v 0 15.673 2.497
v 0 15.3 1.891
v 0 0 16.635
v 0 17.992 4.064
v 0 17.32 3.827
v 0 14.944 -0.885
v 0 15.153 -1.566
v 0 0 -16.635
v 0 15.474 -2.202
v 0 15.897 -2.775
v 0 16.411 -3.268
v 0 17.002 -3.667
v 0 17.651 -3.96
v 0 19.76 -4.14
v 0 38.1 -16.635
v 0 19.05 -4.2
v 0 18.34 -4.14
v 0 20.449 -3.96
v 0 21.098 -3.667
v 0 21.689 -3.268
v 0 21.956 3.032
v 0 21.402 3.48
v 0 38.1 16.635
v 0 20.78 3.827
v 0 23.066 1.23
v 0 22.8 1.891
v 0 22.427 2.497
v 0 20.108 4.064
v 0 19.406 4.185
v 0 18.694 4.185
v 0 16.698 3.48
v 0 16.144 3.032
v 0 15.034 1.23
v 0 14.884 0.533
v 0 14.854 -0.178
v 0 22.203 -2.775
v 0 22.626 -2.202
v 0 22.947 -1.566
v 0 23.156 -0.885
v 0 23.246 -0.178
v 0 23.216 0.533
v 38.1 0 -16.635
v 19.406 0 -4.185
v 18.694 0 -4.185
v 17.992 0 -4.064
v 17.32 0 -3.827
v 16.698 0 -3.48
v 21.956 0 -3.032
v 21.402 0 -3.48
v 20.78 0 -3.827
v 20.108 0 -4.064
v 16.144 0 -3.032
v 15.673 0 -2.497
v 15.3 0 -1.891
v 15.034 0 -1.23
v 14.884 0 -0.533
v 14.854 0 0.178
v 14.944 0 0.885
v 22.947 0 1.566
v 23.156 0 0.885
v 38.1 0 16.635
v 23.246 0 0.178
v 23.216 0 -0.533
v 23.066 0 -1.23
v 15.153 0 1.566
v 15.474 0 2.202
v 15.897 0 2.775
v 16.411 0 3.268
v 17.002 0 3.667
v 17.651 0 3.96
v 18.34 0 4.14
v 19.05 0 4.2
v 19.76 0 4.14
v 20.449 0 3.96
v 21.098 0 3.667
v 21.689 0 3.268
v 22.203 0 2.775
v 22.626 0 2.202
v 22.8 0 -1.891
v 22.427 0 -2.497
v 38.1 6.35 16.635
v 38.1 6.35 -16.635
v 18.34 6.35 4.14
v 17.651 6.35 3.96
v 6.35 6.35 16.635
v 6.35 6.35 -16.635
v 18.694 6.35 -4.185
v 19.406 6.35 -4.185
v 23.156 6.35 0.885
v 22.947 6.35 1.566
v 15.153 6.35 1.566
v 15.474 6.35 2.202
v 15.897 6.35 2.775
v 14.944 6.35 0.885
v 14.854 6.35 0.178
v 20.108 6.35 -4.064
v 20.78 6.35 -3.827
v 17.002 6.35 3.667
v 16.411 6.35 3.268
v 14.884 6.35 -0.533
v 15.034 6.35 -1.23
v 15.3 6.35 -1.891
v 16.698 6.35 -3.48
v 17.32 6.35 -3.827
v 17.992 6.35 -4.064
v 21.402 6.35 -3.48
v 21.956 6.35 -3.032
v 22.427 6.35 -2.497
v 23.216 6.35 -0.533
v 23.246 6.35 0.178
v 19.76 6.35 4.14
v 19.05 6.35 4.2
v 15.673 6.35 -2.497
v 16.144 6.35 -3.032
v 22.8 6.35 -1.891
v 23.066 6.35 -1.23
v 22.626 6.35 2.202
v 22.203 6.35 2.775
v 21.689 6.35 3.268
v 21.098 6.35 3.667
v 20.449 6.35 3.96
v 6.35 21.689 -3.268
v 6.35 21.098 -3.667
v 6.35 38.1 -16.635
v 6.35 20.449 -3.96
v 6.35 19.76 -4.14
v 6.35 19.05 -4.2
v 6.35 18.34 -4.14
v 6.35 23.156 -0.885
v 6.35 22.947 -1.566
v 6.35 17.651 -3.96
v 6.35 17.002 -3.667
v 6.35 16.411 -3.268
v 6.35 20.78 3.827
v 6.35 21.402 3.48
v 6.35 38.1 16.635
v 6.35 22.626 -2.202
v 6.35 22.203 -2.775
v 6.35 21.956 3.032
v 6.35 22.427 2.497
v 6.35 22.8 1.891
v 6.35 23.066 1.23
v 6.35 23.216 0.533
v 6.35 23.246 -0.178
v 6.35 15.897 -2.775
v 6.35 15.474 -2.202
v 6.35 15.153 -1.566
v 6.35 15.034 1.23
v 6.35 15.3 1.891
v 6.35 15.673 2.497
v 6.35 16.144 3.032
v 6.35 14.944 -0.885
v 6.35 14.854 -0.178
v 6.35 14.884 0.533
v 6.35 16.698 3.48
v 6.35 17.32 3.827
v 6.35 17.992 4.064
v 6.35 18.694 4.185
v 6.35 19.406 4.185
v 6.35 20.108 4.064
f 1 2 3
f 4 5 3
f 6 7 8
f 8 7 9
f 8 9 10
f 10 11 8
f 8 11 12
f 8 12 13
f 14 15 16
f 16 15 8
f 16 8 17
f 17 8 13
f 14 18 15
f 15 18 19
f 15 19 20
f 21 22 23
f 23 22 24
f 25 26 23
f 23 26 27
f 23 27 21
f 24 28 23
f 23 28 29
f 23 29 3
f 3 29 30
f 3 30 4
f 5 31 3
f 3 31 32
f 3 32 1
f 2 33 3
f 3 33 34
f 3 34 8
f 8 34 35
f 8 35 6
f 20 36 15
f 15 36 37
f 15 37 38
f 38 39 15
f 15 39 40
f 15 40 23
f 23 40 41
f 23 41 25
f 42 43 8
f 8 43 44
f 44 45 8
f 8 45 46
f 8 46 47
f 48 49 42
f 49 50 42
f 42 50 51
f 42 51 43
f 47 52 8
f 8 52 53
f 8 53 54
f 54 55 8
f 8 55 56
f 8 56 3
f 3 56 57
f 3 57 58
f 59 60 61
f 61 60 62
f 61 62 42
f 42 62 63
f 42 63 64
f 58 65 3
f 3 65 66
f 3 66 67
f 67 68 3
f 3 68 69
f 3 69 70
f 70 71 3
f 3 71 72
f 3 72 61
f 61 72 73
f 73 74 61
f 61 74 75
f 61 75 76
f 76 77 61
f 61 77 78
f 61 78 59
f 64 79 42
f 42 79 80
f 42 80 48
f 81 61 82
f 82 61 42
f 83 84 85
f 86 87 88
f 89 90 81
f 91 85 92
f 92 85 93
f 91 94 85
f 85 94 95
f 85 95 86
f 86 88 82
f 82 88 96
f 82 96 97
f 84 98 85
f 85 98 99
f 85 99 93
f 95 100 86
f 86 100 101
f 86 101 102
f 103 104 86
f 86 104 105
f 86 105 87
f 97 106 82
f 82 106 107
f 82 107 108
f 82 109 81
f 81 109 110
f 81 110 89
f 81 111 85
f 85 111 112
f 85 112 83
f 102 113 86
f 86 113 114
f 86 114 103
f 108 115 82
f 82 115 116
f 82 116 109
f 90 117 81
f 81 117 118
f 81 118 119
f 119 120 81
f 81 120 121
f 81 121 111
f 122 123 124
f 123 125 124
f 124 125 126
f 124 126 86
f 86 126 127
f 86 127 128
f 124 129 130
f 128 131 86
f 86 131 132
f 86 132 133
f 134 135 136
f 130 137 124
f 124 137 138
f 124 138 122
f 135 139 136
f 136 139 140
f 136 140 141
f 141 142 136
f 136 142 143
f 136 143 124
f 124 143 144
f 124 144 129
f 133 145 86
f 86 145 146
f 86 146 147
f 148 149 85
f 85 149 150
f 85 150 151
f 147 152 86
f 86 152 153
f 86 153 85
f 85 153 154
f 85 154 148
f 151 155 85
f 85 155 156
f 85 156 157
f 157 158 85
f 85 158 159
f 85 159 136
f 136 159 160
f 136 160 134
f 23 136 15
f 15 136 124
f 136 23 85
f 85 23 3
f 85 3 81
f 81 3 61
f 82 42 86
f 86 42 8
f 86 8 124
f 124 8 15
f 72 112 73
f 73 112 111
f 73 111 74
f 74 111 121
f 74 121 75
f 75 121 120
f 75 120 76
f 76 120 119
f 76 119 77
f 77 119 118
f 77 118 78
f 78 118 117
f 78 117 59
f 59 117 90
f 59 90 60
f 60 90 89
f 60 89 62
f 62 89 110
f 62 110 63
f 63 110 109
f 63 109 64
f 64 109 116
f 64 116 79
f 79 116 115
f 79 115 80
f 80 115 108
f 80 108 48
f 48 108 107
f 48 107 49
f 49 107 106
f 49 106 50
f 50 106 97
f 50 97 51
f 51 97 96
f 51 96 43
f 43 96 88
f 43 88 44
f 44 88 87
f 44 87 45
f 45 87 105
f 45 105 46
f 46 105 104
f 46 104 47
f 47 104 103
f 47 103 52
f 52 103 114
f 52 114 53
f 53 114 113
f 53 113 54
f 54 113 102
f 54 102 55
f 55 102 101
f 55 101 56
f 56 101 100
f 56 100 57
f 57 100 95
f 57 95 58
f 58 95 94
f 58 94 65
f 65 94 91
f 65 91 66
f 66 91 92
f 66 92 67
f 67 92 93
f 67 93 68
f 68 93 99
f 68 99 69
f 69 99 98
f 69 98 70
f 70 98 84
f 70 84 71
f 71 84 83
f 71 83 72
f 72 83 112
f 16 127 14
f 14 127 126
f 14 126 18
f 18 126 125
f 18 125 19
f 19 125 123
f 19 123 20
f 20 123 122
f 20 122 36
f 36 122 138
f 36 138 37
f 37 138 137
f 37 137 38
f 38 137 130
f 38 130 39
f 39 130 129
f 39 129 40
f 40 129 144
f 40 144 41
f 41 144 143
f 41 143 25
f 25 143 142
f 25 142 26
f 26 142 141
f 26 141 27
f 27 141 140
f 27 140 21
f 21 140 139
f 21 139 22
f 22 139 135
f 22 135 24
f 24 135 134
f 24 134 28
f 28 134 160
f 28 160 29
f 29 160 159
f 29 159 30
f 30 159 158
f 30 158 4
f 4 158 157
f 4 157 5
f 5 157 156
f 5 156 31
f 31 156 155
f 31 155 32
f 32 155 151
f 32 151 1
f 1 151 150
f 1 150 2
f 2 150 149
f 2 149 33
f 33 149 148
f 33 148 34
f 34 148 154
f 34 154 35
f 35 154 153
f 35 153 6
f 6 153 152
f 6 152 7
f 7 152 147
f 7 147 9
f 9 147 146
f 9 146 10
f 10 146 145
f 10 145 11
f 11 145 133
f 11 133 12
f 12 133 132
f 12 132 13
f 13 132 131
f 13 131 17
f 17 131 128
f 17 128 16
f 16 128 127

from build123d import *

# Parameters (mm, degrees)
BODY_DEPTH   = 33.27
SKETCH2_R    = 4.2
HOLESX_DEPTH = 6.35
SKETCH3_R    = 4.2
HOLESY_DEPTH = 6.35


with BuildPart() as part:
    # Sketch1 → Body (new body)
    with BuildSketch(Plane.XY.offset(-16.635)):
        Polygon((0, 0), (38.1, 0), (38.1, 6.35), (6.35, 6.35), (6.35, 38.1), (0, 38.1), align=None)
    extrude(amount=BODY_DEPTH)

    # Sketch2 → HolesX (cut)
    with BuildSketch(Plane(origin=(0, 6.35, 0), x_dir=(1, 0, 0), z_dir=(0, 1, 0))):
        with Locations(Location((19.05, 0, 0), (0, 0, 270))):
            Circle(SKETCH2_R)
    extrude(amount=-HOLESX_DEPTH, mode=Mode.SUBTRACT)

    # Sketch3 → HolesY (cut)
    with BuildSketch(Plane(origin=(6.35, 0, 0), x_dir=(0, 0, -1), z_dir=(1, 0, 0))):
        with Locations((0, 19.05)):
            Circle(SKETCH3_R)
    extrude(amount=-HOLESY_DEPTH, mode=Mode.SUBTRACT)


solid = part.part
